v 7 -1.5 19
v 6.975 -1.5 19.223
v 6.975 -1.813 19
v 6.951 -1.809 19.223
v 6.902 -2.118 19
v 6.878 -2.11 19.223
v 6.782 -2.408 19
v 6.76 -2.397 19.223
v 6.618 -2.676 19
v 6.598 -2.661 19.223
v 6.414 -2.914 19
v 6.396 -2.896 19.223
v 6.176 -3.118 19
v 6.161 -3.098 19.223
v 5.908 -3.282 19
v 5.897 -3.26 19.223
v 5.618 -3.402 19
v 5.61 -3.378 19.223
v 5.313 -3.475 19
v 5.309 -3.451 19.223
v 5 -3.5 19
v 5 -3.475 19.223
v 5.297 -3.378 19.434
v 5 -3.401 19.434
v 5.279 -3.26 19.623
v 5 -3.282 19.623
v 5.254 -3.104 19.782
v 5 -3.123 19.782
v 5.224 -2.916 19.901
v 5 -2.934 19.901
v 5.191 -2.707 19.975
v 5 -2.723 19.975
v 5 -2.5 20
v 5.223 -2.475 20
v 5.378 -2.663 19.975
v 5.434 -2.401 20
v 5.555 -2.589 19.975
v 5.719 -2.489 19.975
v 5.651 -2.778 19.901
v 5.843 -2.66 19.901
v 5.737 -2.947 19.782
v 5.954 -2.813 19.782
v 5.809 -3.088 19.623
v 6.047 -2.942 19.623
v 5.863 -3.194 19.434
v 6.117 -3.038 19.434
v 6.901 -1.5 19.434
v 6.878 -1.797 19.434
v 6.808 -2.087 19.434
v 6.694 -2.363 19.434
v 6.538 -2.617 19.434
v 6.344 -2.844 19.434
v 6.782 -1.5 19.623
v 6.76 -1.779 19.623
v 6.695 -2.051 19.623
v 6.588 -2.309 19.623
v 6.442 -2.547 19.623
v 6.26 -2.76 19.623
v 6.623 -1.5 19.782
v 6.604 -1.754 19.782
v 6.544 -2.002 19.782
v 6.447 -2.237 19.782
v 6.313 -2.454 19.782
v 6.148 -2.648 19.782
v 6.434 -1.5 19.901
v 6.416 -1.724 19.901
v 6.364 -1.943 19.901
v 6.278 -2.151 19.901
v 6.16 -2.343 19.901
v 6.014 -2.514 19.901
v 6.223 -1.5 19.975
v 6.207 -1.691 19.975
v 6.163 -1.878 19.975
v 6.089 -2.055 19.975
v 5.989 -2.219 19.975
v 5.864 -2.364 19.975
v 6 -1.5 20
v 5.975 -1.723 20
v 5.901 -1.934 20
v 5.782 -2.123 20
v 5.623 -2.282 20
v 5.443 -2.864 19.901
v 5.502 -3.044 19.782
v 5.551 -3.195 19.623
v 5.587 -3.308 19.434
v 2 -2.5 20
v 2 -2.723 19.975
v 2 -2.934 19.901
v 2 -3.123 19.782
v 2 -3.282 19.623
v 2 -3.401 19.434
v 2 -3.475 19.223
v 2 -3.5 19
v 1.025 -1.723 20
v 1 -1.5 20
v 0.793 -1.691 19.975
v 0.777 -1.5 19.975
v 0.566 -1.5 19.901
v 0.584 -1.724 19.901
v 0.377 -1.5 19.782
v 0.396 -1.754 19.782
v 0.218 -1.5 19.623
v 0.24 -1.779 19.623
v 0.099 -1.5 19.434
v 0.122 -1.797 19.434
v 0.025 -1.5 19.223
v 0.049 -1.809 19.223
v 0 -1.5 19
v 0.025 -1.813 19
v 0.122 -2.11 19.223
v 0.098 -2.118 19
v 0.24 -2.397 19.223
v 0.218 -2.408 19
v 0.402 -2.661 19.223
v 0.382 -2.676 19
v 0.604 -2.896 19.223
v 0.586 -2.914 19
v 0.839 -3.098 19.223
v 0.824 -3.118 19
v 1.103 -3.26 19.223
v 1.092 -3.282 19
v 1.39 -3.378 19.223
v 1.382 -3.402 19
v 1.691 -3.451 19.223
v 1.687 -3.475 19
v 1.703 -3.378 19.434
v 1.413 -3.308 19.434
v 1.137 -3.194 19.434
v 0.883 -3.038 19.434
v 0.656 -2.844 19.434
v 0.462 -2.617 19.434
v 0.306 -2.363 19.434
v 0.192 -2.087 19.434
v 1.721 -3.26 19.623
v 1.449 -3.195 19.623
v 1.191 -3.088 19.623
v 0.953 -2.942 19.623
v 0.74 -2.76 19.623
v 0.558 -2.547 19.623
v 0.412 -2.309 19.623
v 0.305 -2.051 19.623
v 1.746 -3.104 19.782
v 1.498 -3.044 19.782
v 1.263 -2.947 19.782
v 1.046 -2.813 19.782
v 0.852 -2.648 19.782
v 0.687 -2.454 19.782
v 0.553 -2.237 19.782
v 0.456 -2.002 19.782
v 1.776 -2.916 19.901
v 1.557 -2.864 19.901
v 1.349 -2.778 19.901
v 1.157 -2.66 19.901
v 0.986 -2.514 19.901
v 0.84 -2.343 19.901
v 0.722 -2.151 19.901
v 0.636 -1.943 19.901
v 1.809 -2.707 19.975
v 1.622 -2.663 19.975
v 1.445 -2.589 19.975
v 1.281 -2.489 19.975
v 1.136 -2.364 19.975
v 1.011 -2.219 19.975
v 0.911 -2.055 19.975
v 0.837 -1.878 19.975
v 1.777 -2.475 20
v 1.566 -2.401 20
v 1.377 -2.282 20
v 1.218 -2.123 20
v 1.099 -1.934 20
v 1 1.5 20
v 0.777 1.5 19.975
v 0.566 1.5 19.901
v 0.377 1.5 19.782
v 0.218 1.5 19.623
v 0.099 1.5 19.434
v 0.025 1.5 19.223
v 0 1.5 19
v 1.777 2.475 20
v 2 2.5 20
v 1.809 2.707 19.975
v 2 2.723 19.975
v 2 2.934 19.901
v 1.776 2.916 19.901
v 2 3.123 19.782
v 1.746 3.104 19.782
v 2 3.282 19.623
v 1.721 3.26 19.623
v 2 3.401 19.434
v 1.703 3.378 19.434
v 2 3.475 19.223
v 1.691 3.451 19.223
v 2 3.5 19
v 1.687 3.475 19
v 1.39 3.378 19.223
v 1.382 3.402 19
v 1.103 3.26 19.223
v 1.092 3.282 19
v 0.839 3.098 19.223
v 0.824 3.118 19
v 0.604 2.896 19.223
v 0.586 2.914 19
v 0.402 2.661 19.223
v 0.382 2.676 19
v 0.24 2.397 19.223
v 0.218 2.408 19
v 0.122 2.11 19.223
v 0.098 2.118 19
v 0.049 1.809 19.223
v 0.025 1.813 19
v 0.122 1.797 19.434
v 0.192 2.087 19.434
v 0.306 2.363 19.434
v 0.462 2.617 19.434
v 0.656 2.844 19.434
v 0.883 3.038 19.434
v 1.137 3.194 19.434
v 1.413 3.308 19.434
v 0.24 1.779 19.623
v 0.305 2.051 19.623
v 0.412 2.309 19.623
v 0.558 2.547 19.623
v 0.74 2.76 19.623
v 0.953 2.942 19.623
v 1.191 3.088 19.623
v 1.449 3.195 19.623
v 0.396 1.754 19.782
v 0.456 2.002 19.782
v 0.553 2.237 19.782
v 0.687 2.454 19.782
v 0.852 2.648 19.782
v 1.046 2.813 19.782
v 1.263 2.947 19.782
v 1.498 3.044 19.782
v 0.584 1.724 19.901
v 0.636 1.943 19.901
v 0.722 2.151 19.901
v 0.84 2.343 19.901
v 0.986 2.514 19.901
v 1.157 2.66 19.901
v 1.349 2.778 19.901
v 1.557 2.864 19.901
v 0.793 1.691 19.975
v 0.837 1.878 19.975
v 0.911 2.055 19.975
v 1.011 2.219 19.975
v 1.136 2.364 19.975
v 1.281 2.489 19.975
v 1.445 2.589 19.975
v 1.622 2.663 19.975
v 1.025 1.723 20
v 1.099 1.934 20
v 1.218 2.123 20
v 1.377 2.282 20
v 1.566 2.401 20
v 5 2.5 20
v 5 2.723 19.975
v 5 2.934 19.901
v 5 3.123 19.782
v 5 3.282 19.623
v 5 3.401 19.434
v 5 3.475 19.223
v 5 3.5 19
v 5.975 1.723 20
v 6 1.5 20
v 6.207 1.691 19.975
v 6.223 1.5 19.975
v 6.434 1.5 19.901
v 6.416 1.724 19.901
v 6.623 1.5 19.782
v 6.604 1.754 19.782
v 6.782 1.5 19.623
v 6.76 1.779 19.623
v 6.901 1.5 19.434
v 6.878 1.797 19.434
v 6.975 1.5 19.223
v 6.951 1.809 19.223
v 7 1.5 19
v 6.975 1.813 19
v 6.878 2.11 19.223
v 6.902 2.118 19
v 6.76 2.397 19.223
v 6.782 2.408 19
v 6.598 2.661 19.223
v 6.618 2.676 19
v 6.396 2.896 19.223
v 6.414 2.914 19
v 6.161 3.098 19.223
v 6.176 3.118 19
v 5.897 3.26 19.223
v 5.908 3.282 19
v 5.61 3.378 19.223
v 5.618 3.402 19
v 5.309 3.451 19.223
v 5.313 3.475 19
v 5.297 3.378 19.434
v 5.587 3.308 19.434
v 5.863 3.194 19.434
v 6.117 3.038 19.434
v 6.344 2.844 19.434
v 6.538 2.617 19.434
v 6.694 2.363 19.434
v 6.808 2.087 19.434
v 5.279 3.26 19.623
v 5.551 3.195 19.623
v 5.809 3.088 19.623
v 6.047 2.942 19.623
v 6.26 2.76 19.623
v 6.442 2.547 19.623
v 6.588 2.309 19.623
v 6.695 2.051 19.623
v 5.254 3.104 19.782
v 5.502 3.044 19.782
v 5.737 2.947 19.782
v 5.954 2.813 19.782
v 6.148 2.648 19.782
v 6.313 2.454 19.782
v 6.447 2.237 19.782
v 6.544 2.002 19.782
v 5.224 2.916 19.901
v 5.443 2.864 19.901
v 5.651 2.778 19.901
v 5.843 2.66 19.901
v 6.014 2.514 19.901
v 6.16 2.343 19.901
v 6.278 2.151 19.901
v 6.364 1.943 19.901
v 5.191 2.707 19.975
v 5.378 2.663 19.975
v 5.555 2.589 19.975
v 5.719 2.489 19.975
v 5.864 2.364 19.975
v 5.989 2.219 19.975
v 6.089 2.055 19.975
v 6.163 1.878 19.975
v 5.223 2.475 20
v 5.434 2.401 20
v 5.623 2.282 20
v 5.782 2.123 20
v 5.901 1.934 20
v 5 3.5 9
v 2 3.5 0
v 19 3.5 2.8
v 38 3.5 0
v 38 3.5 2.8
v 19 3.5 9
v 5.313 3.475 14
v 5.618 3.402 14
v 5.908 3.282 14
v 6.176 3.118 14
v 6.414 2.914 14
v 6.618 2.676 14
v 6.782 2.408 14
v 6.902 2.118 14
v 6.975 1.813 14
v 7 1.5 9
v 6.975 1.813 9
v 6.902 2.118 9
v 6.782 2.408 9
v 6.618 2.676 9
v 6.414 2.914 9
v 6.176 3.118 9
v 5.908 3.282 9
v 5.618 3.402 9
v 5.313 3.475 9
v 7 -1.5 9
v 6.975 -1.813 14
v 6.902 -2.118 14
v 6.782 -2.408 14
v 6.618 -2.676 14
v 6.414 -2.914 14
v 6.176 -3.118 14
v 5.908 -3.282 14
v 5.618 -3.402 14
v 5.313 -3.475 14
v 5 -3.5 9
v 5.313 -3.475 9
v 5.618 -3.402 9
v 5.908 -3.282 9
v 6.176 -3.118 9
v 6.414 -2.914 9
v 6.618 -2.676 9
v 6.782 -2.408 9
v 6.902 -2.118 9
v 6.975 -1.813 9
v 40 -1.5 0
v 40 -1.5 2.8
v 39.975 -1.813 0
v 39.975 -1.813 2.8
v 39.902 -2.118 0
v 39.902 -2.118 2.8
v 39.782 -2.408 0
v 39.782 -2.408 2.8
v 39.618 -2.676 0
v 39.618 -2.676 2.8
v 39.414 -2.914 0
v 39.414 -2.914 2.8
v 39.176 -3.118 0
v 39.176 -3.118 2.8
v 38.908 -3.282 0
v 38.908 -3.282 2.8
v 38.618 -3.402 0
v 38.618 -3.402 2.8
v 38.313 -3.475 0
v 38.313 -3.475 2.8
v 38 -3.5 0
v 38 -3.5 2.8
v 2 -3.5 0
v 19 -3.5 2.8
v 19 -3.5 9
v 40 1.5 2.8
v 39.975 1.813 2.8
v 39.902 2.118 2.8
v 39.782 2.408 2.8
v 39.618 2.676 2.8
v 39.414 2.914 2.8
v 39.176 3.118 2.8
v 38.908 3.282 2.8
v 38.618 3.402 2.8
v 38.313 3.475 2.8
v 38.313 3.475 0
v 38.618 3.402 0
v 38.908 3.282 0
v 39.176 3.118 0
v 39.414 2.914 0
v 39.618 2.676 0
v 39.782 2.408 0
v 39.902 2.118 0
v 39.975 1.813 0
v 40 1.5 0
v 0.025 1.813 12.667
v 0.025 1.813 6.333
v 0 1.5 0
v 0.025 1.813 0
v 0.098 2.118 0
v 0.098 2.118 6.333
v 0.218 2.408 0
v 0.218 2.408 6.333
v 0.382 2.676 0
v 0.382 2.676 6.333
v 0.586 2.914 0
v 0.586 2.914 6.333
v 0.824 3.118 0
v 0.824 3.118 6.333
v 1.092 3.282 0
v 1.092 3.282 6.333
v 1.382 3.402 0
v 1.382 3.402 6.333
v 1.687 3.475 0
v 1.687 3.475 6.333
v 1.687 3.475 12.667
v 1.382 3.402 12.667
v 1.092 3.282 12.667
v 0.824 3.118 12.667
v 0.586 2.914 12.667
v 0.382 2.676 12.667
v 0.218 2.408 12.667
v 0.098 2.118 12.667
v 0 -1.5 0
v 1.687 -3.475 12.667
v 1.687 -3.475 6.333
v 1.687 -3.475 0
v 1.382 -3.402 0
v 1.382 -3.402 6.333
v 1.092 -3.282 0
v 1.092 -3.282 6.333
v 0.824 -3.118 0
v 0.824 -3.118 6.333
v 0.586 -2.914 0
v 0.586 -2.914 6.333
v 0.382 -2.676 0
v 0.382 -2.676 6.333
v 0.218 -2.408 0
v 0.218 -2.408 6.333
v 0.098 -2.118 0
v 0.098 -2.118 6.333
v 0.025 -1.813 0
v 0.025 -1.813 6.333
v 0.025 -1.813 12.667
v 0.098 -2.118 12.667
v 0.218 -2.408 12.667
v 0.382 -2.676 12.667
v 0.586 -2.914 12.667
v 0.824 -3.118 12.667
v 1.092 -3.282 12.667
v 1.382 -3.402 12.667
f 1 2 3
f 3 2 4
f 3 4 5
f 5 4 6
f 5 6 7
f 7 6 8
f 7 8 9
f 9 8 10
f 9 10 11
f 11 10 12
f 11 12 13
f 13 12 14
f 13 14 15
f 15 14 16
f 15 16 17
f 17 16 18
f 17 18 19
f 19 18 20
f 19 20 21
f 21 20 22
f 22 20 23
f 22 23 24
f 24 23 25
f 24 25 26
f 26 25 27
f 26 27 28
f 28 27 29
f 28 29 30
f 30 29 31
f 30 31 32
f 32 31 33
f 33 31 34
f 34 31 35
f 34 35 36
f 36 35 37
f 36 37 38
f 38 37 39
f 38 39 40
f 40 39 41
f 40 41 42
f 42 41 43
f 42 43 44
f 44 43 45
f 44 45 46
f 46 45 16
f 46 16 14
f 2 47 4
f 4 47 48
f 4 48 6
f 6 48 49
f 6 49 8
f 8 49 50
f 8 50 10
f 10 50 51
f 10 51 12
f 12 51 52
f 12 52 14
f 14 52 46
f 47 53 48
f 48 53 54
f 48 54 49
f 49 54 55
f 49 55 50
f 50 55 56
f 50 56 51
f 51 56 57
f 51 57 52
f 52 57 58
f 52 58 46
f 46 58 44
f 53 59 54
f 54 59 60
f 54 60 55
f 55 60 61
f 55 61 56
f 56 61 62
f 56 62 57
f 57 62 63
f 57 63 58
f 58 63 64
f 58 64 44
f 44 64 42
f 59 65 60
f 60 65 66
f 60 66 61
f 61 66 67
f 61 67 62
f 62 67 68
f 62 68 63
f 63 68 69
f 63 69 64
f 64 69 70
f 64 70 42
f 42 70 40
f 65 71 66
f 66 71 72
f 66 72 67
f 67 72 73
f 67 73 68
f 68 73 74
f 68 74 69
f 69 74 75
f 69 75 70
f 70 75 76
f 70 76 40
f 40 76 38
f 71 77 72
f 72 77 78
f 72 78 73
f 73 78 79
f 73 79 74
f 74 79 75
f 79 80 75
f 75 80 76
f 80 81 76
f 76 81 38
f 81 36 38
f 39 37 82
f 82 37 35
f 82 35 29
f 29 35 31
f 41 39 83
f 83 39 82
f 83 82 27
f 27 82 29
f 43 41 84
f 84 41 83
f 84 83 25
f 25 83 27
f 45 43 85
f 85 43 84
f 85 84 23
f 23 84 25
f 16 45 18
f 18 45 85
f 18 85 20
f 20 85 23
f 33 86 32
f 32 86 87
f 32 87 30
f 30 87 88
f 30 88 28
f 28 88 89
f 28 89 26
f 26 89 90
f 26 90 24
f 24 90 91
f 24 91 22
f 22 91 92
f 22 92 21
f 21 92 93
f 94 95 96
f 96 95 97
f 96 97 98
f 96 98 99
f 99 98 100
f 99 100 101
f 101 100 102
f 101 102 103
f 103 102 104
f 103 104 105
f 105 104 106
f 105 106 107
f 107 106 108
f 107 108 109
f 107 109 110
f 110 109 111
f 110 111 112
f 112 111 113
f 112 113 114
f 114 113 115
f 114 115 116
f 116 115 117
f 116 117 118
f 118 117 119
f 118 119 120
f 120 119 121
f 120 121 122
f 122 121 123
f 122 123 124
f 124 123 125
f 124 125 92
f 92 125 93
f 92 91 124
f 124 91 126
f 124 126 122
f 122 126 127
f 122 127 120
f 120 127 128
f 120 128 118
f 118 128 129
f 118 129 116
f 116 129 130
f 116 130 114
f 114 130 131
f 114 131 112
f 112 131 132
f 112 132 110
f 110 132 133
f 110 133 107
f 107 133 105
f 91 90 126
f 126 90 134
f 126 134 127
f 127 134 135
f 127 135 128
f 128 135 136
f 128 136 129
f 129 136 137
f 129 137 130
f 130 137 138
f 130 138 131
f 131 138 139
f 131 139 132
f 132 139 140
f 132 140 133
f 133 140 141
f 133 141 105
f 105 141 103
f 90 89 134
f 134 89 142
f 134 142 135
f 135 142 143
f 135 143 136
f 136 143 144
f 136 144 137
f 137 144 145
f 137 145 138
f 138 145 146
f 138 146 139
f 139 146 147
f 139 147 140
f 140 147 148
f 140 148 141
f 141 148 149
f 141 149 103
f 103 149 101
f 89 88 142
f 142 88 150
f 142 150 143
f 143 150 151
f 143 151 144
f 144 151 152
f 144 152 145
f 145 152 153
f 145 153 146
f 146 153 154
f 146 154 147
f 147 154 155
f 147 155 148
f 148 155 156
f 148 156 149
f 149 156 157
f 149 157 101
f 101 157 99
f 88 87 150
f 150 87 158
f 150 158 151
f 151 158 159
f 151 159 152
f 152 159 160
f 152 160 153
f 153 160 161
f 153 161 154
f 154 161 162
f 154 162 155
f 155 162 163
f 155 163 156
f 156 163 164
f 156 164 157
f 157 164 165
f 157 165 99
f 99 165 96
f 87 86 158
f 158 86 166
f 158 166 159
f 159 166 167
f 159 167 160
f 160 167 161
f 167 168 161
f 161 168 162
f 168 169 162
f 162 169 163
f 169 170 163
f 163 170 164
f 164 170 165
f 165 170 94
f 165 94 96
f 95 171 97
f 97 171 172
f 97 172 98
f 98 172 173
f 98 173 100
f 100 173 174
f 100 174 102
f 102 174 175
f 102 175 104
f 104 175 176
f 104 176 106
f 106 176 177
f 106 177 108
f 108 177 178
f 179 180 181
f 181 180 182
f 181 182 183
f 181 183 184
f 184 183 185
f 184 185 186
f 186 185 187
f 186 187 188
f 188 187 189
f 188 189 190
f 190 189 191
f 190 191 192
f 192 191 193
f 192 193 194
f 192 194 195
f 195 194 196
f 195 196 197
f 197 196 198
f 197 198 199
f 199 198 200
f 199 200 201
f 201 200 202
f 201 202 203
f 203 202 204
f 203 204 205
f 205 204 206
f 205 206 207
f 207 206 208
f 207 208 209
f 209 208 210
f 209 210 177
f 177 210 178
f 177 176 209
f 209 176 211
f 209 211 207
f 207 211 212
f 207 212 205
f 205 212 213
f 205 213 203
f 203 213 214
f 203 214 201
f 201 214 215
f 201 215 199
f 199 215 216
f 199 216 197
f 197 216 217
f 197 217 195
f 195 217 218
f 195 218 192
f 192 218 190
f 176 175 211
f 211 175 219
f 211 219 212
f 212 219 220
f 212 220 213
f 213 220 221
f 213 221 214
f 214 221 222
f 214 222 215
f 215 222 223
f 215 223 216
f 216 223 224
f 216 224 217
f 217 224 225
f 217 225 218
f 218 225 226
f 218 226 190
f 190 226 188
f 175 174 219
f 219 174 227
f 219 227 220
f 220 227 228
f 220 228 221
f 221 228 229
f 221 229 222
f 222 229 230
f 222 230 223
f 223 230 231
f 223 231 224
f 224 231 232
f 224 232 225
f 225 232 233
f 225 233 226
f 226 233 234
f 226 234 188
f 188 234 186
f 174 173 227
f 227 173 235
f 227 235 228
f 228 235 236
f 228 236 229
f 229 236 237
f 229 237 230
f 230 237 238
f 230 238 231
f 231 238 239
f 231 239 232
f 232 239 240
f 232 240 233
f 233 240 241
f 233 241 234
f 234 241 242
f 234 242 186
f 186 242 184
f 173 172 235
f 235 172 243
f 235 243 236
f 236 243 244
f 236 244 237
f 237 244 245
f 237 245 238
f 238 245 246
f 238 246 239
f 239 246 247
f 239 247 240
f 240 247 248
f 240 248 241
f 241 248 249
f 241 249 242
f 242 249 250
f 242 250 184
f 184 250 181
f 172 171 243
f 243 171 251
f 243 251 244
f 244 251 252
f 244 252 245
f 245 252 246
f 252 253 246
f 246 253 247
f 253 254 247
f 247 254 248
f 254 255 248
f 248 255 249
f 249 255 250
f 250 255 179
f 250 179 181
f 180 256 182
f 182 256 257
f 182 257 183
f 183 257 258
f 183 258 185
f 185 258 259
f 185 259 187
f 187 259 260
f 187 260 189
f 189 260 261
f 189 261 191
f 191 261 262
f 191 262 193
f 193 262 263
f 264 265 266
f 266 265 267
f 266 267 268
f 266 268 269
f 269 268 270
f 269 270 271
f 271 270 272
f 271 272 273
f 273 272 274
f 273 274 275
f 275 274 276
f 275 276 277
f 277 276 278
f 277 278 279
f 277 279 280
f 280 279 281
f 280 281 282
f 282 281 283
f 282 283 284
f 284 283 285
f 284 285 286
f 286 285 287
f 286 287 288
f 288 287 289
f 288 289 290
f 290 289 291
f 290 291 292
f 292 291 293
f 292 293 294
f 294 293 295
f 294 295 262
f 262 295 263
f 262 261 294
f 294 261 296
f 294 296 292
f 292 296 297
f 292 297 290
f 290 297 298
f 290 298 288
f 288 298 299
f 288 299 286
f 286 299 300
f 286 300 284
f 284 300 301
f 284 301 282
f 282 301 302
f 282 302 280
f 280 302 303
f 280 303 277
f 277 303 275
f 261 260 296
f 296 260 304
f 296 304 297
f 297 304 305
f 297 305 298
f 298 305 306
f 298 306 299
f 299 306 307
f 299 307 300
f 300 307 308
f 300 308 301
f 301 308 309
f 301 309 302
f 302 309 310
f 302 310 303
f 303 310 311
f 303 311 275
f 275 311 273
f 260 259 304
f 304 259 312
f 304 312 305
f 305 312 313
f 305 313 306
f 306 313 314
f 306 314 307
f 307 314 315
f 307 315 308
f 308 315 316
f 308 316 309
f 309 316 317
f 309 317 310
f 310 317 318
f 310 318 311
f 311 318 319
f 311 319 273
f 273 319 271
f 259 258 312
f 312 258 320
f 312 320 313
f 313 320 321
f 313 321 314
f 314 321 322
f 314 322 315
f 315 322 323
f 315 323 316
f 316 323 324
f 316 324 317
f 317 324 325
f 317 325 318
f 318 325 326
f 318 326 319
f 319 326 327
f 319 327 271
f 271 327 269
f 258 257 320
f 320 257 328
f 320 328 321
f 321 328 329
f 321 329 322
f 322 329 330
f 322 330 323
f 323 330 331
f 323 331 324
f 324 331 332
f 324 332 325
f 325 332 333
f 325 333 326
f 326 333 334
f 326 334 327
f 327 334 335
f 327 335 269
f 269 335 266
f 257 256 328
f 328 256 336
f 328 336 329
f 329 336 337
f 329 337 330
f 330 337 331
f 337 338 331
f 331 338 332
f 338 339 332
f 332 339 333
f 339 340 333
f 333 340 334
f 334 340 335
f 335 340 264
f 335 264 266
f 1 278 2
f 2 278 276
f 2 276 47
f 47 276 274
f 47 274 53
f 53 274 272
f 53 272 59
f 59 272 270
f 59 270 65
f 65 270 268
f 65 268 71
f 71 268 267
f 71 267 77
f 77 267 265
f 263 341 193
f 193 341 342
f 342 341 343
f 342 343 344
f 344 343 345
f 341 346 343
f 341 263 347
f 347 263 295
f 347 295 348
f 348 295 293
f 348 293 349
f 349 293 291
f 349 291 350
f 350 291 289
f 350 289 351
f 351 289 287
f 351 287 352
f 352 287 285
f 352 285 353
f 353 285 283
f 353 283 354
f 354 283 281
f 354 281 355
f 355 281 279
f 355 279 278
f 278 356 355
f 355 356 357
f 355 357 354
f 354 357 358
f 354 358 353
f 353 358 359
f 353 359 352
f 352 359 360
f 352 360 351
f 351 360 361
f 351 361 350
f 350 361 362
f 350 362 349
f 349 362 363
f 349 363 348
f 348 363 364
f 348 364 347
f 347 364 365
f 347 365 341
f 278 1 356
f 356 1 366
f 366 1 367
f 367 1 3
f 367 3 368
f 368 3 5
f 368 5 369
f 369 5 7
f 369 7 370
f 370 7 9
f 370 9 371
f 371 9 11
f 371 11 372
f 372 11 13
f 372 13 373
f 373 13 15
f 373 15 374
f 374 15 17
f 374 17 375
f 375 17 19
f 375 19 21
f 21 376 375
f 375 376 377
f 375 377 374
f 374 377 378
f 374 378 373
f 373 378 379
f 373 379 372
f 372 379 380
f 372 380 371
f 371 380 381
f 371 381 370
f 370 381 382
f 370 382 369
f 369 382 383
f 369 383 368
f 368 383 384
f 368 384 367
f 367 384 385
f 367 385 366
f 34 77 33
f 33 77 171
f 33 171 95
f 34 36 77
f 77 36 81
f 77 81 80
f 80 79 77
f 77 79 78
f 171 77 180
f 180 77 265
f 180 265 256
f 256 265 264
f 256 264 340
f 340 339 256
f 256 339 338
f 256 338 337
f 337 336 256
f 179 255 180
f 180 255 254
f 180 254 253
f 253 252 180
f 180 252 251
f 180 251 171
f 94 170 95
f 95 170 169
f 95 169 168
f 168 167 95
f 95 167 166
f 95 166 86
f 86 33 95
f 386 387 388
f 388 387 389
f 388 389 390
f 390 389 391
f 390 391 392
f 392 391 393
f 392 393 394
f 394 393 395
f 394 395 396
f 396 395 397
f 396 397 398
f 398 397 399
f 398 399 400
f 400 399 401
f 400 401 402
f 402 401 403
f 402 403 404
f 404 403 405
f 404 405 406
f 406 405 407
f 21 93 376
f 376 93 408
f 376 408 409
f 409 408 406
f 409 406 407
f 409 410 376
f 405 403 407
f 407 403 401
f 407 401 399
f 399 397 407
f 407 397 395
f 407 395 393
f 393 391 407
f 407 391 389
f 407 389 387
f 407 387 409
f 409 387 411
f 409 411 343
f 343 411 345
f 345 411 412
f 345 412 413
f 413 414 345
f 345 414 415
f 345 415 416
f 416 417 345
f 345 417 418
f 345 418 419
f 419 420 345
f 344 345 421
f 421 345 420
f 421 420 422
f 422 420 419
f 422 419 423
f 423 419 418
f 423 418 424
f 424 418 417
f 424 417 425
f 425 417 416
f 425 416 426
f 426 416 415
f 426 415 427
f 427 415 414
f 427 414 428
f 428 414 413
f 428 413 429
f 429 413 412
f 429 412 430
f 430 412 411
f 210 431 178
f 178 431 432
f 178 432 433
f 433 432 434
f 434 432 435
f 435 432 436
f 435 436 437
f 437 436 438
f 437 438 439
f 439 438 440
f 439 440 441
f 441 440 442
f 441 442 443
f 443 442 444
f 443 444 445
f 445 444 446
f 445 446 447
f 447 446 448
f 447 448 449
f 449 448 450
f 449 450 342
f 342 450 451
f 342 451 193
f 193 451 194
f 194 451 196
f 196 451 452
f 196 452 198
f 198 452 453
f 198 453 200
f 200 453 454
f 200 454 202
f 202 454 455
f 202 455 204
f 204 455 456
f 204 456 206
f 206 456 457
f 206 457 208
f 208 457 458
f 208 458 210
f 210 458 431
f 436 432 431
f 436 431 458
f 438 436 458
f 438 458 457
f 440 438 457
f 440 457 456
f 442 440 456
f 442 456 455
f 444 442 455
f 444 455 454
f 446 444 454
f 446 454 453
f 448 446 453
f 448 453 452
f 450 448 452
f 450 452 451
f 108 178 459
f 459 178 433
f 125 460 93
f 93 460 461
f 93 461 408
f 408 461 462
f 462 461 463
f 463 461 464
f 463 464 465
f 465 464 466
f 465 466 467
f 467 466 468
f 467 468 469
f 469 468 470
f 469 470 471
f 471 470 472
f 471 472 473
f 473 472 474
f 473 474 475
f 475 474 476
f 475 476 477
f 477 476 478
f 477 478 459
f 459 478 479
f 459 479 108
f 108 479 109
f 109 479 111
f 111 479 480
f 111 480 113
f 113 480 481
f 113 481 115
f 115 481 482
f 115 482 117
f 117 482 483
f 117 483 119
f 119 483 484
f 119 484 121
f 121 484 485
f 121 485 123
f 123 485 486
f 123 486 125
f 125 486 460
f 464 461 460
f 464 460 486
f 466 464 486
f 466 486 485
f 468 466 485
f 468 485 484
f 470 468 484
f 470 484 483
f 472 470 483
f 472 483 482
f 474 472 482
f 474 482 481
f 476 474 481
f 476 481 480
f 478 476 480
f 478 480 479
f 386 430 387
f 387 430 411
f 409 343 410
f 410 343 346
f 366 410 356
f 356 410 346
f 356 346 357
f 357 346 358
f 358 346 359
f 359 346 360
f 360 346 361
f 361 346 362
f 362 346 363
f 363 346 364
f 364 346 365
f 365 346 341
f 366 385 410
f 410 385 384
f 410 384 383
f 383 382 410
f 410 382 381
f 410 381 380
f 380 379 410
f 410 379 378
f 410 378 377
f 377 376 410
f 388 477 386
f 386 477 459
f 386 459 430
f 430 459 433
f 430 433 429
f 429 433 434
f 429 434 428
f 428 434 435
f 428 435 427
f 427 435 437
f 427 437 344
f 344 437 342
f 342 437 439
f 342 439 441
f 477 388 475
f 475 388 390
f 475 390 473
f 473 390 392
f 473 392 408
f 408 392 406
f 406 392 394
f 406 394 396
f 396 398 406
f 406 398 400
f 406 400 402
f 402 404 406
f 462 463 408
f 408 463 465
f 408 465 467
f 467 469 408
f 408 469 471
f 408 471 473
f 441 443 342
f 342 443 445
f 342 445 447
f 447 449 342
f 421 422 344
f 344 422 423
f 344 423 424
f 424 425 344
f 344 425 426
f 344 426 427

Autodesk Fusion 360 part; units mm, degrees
sketch "Sketch1" plane through (0, 0, 0) normal (0, 0, 1) x (1, 0, 0)
  line L0 (0, 3.5) -> (40, 3.5)
  line L1 (40, 3.5) -> (40, -3.5)
  line L2 (40, -3.5) -> (0, -3.5)
  line L3 (0, -3.5) -> (0, 3.5)
  line L4 (0, 3.5) -> (7, 3.5)
  line L5 (7, 3.5) -> (7, -3.5)
  line L6 (7, -3.5) -> (0, -3.5)
  line L7 (0, -3.5) -> (0, 3.5)
  line L8 (40, 3.5) -> (19, 3.5)
  line L9 (19, 3.5) -> (19, -3.5)
  line L10 (19, -3.5) -> (40, -3.5)
  line L11 (40, -3.5) -> (40, 3.5)
  dimension "d1" = 7
  dimension "d2" = 40
  dimension "d5" = 7
  dimension "d14" = 21
  dimension "d19" = 34
extrude "Extrude3" add sketch "Sketch1" along normal blind 9 contours L0 L2 L5 L9 makes body 1
extrude "Extrude2" add sketch "Sketch1" along normal blind 20 separate body contours L0 L2 L3 L4 L5 L6 L7 makes body 2
extrude "Extrude1" add sketch "Sketch1" along normal blind 2.8 bodies 1 2
fillet "Fillet3" radius 2 6 edges at (7, -3.5, 14.5) (0, -3.5, 10) (0, 3.5, 10) (7, 3.5, 14.5) (40, 3.5, 1.4) (40, -3.5, 1.4) on bodies 1
fillet "Fillet4" radius 1 8 edges at (6.4142, -2.9142, 20) (7, 0, 20) (6.4142, 2.9142, 20) (3.5, 3.5, 20) (0.5858, 2.9142, 20) (0, 0, 20) (0.5858, -2.9142, 20) (3.5, -3.5, 20) on bodies 1
